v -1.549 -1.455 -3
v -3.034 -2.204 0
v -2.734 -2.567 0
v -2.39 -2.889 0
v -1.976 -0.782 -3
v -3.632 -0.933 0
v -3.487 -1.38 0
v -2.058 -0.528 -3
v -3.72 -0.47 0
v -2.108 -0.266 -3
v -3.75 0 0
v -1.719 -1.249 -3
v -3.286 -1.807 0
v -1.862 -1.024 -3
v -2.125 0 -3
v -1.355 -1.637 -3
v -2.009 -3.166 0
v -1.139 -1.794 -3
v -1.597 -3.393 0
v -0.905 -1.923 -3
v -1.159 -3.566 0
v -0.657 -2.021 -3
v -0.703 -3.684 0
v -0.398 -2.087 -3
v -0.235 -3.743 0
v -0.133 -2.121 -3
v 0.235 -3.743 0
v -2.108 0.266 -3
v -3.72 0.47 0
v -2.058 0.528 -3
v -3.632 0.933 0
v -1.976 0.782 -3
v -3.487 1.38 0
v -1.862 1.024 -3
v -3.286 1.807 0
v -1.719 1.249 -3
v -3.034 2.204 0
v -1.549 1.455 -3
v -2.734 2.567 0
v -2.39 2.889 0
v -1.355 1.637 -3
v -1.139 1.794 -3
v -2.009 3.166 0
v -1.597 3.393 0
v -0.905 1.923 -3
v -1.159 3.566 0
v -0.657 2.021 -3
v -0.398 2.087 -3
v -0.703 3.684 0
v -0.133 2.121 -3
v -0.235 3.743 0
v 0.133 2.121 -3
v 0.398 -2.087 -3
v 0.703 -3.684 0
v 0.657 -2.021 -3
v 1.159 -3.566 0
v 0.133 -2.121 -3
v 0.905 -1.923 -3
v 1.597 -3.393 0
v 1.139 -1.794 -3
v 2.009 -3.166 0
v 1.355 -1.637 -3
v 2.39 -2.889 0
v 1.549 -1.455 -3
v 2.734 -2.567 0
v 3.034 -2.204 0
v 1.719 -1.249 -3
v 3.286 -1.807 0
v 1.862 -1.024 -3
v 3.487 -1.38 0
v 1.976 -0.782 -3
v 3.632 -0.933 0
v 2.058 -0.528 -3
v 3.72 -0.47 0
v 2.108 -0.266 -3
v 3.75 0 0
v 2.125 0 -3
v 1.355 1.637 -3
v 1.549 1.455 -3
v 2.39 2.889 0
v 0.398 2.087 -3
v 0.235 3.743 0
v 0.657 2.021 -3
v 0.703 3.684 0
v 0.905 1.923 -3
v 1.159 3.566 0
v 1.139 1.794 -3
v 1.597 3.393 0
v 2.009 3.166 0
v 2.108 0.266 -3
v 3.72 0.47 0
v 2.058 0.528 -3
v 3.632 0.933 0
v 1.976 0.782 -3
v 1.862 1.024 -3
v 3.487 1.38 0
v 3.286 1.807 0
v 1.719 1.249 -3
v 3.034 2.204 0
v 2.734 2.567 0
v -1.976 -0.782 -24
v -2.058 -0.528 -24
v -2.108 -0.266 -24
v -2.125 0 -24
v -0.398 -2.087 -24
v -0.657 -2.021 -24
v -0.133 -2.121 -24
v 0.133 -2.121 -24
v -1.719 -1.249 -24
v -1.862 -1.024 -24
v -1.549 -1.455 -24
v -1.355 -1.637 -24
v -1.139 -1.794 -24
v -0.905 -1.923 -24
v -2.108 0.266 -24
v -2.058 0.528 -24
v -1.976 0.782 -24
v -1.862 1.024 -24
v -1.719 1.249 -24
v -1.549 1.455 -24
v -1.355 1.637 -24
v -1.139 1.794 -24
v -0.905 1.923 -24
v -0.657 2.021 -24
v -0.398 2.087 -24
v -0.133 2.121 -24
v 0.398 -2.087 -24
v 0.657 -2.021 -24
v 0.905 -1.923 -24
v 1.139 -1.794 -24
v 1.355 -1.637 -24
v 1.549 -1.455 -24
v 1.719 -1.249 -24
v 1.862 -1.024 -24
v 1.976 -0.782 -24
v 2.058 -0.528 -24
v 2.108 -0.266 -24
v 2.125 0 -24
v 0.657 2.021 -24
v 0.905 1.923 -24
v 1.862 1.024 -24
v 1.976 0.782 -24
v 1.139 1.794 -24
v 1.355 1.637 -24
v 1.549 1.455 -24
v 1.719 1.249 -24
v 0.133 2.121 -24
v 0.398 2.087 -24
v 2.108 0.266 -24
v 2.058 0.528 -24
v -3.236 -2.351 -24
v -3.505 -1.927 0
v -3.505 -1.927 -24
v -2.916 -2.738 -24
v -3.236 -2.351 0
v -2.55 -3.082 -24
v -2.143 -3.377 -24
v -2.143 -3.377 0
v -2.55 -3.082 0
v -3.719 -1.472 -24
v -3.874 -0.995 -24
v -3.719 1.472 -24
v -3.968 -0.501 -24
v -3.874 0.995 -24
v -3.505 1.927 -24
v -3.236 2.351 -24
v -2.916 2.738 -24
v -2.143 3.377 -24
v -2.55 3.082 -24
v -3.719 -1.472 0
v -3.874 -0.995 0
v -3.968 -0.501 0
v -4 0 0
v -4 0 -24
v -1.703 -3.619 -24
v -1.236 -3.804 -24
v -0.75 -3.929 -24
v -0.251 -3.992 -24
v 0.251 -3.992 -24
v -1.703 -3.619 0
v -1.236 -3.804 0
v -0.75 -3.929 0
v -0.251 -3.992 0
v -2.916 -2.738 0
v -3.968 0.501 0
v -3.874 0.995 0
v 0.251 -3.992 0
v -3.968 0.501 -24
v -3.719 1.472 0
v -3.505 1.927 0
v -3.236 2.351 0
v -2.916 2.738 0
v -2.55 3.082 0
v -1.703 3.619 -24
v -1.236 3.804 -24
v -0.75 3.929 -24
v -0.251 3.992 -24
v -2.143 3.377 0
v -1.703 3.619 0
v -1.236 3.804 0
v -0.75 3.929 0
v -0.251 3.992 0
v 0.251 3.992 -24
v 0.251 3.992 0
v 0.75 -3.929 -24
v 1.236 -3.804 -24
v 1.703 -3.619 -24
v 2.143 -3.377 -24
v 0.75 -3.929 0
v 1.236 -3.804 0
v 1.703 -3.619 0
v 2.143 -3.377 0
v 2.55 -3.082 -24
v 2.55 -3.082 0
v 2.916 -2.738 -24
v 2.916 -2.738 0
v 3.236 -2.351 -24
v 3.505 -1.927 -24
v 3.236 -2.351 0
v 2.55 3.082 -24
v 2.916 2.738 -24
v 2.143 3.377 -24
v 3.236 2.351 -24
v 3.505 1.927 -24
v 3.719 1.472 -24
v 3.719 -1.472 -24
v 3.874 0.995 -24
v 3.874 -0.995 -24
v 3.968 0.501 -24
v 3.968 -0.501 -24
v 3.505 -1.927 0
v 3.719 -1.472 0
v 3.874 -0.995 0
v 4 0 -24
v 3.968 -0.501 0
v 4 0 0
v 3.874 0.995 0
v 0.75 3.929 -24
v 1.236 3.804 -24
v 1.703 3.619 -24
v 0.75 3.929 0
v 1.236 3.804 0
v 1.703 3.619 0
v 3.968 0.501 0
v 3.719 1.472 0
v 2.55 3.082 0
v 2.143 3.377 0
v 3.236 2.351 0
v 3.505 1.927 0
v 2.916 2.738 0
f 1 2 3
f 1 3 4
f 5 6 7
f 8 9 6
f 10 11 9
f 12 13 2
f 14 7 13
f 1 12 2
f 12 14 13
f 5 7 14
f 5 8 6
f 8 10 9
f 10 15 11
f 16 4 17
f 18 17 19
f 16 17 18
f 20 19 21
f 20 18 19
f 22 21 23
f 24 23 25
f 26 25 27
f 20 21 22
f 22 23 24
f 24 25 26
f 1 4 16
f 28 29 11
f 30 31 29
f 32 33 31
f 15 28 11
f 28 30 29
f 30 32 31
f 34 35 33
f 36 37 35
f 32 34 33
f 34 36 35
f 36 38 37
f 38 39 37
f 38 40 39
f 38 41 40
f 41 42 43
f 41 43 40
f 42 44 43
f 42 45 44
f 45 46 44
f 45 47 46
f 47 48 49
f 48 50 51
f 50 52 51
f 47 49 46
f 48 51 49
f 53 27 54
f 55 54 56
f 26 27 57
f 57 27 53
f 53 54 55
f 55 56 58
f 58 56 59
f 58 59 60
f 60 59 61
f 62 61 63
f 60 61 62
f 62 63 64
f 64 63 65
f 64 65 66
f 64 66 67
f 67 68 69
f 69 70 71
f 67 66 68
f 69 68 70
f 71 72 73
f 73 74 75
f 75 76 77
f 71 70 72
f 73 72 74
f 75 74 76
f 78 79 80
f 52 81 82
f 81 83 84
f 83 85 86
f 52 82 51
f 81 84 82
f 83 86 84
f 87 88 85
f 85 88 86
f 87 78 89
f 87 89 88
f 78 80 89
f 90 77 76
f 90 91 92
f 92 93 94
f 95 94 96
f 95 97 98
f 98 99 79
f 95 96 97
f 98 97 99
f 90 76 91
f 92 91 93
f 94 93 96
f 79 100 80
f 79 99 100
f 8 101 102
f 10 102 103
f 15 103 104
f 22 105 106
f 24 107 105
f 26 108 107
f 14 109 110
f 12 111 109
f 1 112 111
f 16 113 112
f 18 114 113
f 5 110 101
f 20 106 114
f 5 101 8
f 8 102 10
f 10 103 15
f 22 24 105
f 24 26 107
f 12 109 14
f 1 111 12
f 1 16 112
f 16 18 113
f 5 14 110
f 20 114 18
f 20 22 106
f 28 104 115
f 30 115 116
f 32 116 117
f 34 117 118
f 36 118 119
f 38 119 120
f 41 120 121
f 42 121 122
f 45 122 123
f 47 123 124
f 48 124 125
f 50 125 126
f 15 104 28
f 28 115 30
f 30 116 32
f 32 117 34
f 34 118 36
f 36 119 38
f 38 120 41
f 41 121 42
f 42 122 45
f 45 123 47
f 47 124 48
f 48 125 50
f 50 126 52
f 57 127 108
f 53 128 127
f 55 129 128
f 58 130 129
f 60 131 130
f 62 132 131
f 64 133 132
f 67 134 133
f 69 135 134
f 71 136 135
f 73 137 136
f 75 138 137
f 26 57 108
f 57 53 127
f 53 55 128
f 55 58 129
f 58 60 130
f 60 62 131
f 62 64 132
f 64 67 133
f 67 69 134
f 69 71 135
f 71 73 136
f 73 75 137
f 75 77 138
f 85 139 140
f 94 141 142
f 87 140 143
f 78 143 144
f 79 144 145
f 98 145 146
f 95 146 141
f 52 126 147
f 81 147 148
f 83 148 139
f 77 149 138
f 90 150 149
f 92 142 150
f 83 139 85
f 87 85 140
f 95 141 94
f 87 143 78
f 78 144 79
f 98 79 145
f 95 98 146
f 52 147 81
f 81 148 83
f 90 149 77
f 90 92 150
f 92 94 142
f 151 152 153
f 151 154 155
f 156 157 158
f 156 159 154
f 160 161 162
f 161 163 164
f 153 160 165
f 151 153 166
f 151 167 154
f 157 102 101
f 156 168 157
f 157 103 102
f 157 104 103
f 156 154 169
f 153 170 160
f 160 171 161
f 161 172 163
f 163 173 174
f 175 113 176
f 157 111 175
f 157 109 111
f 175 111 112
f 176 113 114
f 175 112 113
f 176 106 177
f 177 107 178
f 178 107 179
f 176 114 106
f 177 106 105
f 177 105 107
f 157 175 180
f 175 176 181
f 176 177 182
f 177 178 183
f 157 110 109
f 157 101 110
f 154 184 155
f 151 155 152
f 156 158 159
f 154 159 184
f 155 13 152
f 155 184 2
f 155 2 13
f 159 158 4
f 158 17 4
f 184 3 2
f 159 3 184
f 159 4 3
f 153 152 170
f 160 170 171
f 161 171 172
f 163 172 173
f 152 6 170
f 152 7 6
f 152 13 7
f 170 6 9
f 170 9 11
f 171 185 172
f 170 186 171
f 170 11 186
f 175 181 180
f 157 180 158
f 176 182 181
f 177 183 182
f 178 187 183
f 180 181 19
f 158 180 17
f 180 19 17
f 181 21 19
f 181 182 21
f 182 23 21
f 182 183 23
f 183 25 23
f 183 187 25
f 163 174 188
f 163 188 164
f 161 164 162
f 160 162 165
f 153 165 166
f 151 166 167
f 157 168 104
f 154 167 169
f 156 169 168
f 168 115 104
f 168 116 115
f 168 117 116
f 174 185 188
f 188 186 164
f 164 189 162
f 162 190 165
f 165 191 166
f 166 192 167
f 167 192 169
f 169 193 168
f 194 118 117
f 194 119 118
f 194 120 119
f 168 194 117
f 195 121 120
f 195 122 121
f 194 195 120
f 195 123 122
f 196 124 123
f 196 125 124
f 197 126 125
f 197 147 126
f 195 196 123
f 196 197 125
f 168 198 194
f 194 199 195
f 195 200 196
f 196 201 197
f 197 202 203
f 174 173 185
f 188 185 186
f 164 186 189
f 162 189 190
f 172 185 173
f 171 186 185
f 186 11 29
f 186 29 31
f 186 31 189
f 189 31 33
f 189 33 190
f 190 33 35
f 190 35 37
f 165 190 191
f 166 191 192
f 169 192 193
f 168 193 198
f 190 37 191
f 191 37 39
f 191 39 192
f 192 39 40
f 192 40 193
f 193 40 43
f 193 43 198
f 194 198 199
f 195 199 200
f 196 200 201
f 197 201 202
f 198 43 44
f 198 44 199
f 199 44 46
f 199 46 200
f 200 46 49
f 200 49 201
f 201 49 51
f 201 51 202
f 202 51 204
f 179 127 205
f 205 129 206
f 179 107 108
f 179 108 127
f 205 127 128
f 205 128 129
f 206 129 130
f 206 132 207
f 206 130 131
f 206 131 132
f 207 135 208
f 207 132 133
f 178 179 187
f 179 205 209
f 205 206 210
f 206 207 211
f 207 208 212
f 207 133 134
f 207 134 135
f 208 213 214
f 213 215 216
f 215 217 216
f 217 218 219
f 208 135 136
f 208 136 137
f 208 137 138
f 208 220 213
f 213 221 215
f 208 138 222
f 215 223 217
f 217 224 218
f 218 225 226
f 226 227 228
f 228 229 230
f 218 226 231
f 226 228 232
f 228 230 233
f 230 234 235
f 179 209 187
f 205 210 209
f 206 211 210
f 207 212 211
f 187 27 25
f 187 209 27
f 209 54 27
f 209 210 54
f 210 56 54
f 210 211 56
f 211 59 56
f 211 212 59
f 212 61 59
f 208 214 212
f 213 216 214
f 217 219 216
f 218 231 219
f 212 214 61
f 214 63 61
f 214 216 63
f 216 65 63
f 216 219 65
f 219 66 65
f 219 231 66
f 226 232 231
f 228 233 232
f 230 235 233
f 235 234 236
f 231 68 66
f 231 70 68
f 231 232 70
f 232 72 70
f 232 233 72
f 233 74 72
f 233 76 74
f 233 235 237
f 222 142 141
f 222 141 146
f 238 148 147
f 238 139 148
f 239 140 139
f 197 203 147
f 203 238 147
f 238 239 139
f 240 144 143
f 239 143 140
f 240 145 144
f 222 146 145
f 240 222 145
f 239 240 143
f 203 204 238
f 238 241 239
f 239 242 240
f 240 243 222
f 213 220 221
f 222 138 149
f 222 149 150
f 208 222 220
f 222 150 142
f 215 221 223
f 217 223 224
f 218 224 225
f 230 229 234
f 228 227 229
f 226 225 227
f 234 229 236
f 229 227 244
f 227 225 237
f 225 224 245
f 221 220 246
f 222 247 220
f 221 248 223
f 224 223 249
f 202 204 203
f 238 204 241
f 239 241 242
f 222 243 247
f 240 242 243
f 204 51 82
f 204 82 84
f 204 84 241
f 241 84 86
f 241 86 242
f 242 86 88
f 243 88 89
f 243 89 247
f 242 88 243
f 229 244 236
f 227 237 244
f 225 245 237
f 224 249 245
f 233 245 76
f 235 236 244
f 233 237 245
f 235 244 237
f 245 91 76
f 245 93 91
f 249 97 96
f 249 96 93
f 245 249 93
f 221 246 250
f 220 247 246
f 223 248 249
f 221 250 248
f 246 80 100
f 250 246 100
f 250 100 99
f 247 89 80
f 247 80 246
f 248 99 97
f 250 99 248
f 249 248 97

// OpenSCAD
$fn = 50;

difference() {
	union() {
		translate(v = [0, 0, -24.0]) {
			cylinder(h = 24, r = 4.0);
		}
	}
	union() {
		translate(v = [0, 0, 0]) {
			rotate(a = [0, 0, 0]) {
				difference() {
					union() {
						translate(v = [0, 0, -27.0]) {
							cylinder(h = 27, r = 2.0);
						}
						translate(v = [0, 0, -3]) {
							cylinder(h = 3, r1 = 2.125, r2 = 3.75);
						}
						translate(v = [0, 0, -27.0]) {
							cylinder(h = 27, r = 2.125);
						}
						translate(v = [0, 0, -27.0]) {
							cylinder(h = 27, r = 2.0);
						}
					}
					union();
				}
			}
		}
	}
}
